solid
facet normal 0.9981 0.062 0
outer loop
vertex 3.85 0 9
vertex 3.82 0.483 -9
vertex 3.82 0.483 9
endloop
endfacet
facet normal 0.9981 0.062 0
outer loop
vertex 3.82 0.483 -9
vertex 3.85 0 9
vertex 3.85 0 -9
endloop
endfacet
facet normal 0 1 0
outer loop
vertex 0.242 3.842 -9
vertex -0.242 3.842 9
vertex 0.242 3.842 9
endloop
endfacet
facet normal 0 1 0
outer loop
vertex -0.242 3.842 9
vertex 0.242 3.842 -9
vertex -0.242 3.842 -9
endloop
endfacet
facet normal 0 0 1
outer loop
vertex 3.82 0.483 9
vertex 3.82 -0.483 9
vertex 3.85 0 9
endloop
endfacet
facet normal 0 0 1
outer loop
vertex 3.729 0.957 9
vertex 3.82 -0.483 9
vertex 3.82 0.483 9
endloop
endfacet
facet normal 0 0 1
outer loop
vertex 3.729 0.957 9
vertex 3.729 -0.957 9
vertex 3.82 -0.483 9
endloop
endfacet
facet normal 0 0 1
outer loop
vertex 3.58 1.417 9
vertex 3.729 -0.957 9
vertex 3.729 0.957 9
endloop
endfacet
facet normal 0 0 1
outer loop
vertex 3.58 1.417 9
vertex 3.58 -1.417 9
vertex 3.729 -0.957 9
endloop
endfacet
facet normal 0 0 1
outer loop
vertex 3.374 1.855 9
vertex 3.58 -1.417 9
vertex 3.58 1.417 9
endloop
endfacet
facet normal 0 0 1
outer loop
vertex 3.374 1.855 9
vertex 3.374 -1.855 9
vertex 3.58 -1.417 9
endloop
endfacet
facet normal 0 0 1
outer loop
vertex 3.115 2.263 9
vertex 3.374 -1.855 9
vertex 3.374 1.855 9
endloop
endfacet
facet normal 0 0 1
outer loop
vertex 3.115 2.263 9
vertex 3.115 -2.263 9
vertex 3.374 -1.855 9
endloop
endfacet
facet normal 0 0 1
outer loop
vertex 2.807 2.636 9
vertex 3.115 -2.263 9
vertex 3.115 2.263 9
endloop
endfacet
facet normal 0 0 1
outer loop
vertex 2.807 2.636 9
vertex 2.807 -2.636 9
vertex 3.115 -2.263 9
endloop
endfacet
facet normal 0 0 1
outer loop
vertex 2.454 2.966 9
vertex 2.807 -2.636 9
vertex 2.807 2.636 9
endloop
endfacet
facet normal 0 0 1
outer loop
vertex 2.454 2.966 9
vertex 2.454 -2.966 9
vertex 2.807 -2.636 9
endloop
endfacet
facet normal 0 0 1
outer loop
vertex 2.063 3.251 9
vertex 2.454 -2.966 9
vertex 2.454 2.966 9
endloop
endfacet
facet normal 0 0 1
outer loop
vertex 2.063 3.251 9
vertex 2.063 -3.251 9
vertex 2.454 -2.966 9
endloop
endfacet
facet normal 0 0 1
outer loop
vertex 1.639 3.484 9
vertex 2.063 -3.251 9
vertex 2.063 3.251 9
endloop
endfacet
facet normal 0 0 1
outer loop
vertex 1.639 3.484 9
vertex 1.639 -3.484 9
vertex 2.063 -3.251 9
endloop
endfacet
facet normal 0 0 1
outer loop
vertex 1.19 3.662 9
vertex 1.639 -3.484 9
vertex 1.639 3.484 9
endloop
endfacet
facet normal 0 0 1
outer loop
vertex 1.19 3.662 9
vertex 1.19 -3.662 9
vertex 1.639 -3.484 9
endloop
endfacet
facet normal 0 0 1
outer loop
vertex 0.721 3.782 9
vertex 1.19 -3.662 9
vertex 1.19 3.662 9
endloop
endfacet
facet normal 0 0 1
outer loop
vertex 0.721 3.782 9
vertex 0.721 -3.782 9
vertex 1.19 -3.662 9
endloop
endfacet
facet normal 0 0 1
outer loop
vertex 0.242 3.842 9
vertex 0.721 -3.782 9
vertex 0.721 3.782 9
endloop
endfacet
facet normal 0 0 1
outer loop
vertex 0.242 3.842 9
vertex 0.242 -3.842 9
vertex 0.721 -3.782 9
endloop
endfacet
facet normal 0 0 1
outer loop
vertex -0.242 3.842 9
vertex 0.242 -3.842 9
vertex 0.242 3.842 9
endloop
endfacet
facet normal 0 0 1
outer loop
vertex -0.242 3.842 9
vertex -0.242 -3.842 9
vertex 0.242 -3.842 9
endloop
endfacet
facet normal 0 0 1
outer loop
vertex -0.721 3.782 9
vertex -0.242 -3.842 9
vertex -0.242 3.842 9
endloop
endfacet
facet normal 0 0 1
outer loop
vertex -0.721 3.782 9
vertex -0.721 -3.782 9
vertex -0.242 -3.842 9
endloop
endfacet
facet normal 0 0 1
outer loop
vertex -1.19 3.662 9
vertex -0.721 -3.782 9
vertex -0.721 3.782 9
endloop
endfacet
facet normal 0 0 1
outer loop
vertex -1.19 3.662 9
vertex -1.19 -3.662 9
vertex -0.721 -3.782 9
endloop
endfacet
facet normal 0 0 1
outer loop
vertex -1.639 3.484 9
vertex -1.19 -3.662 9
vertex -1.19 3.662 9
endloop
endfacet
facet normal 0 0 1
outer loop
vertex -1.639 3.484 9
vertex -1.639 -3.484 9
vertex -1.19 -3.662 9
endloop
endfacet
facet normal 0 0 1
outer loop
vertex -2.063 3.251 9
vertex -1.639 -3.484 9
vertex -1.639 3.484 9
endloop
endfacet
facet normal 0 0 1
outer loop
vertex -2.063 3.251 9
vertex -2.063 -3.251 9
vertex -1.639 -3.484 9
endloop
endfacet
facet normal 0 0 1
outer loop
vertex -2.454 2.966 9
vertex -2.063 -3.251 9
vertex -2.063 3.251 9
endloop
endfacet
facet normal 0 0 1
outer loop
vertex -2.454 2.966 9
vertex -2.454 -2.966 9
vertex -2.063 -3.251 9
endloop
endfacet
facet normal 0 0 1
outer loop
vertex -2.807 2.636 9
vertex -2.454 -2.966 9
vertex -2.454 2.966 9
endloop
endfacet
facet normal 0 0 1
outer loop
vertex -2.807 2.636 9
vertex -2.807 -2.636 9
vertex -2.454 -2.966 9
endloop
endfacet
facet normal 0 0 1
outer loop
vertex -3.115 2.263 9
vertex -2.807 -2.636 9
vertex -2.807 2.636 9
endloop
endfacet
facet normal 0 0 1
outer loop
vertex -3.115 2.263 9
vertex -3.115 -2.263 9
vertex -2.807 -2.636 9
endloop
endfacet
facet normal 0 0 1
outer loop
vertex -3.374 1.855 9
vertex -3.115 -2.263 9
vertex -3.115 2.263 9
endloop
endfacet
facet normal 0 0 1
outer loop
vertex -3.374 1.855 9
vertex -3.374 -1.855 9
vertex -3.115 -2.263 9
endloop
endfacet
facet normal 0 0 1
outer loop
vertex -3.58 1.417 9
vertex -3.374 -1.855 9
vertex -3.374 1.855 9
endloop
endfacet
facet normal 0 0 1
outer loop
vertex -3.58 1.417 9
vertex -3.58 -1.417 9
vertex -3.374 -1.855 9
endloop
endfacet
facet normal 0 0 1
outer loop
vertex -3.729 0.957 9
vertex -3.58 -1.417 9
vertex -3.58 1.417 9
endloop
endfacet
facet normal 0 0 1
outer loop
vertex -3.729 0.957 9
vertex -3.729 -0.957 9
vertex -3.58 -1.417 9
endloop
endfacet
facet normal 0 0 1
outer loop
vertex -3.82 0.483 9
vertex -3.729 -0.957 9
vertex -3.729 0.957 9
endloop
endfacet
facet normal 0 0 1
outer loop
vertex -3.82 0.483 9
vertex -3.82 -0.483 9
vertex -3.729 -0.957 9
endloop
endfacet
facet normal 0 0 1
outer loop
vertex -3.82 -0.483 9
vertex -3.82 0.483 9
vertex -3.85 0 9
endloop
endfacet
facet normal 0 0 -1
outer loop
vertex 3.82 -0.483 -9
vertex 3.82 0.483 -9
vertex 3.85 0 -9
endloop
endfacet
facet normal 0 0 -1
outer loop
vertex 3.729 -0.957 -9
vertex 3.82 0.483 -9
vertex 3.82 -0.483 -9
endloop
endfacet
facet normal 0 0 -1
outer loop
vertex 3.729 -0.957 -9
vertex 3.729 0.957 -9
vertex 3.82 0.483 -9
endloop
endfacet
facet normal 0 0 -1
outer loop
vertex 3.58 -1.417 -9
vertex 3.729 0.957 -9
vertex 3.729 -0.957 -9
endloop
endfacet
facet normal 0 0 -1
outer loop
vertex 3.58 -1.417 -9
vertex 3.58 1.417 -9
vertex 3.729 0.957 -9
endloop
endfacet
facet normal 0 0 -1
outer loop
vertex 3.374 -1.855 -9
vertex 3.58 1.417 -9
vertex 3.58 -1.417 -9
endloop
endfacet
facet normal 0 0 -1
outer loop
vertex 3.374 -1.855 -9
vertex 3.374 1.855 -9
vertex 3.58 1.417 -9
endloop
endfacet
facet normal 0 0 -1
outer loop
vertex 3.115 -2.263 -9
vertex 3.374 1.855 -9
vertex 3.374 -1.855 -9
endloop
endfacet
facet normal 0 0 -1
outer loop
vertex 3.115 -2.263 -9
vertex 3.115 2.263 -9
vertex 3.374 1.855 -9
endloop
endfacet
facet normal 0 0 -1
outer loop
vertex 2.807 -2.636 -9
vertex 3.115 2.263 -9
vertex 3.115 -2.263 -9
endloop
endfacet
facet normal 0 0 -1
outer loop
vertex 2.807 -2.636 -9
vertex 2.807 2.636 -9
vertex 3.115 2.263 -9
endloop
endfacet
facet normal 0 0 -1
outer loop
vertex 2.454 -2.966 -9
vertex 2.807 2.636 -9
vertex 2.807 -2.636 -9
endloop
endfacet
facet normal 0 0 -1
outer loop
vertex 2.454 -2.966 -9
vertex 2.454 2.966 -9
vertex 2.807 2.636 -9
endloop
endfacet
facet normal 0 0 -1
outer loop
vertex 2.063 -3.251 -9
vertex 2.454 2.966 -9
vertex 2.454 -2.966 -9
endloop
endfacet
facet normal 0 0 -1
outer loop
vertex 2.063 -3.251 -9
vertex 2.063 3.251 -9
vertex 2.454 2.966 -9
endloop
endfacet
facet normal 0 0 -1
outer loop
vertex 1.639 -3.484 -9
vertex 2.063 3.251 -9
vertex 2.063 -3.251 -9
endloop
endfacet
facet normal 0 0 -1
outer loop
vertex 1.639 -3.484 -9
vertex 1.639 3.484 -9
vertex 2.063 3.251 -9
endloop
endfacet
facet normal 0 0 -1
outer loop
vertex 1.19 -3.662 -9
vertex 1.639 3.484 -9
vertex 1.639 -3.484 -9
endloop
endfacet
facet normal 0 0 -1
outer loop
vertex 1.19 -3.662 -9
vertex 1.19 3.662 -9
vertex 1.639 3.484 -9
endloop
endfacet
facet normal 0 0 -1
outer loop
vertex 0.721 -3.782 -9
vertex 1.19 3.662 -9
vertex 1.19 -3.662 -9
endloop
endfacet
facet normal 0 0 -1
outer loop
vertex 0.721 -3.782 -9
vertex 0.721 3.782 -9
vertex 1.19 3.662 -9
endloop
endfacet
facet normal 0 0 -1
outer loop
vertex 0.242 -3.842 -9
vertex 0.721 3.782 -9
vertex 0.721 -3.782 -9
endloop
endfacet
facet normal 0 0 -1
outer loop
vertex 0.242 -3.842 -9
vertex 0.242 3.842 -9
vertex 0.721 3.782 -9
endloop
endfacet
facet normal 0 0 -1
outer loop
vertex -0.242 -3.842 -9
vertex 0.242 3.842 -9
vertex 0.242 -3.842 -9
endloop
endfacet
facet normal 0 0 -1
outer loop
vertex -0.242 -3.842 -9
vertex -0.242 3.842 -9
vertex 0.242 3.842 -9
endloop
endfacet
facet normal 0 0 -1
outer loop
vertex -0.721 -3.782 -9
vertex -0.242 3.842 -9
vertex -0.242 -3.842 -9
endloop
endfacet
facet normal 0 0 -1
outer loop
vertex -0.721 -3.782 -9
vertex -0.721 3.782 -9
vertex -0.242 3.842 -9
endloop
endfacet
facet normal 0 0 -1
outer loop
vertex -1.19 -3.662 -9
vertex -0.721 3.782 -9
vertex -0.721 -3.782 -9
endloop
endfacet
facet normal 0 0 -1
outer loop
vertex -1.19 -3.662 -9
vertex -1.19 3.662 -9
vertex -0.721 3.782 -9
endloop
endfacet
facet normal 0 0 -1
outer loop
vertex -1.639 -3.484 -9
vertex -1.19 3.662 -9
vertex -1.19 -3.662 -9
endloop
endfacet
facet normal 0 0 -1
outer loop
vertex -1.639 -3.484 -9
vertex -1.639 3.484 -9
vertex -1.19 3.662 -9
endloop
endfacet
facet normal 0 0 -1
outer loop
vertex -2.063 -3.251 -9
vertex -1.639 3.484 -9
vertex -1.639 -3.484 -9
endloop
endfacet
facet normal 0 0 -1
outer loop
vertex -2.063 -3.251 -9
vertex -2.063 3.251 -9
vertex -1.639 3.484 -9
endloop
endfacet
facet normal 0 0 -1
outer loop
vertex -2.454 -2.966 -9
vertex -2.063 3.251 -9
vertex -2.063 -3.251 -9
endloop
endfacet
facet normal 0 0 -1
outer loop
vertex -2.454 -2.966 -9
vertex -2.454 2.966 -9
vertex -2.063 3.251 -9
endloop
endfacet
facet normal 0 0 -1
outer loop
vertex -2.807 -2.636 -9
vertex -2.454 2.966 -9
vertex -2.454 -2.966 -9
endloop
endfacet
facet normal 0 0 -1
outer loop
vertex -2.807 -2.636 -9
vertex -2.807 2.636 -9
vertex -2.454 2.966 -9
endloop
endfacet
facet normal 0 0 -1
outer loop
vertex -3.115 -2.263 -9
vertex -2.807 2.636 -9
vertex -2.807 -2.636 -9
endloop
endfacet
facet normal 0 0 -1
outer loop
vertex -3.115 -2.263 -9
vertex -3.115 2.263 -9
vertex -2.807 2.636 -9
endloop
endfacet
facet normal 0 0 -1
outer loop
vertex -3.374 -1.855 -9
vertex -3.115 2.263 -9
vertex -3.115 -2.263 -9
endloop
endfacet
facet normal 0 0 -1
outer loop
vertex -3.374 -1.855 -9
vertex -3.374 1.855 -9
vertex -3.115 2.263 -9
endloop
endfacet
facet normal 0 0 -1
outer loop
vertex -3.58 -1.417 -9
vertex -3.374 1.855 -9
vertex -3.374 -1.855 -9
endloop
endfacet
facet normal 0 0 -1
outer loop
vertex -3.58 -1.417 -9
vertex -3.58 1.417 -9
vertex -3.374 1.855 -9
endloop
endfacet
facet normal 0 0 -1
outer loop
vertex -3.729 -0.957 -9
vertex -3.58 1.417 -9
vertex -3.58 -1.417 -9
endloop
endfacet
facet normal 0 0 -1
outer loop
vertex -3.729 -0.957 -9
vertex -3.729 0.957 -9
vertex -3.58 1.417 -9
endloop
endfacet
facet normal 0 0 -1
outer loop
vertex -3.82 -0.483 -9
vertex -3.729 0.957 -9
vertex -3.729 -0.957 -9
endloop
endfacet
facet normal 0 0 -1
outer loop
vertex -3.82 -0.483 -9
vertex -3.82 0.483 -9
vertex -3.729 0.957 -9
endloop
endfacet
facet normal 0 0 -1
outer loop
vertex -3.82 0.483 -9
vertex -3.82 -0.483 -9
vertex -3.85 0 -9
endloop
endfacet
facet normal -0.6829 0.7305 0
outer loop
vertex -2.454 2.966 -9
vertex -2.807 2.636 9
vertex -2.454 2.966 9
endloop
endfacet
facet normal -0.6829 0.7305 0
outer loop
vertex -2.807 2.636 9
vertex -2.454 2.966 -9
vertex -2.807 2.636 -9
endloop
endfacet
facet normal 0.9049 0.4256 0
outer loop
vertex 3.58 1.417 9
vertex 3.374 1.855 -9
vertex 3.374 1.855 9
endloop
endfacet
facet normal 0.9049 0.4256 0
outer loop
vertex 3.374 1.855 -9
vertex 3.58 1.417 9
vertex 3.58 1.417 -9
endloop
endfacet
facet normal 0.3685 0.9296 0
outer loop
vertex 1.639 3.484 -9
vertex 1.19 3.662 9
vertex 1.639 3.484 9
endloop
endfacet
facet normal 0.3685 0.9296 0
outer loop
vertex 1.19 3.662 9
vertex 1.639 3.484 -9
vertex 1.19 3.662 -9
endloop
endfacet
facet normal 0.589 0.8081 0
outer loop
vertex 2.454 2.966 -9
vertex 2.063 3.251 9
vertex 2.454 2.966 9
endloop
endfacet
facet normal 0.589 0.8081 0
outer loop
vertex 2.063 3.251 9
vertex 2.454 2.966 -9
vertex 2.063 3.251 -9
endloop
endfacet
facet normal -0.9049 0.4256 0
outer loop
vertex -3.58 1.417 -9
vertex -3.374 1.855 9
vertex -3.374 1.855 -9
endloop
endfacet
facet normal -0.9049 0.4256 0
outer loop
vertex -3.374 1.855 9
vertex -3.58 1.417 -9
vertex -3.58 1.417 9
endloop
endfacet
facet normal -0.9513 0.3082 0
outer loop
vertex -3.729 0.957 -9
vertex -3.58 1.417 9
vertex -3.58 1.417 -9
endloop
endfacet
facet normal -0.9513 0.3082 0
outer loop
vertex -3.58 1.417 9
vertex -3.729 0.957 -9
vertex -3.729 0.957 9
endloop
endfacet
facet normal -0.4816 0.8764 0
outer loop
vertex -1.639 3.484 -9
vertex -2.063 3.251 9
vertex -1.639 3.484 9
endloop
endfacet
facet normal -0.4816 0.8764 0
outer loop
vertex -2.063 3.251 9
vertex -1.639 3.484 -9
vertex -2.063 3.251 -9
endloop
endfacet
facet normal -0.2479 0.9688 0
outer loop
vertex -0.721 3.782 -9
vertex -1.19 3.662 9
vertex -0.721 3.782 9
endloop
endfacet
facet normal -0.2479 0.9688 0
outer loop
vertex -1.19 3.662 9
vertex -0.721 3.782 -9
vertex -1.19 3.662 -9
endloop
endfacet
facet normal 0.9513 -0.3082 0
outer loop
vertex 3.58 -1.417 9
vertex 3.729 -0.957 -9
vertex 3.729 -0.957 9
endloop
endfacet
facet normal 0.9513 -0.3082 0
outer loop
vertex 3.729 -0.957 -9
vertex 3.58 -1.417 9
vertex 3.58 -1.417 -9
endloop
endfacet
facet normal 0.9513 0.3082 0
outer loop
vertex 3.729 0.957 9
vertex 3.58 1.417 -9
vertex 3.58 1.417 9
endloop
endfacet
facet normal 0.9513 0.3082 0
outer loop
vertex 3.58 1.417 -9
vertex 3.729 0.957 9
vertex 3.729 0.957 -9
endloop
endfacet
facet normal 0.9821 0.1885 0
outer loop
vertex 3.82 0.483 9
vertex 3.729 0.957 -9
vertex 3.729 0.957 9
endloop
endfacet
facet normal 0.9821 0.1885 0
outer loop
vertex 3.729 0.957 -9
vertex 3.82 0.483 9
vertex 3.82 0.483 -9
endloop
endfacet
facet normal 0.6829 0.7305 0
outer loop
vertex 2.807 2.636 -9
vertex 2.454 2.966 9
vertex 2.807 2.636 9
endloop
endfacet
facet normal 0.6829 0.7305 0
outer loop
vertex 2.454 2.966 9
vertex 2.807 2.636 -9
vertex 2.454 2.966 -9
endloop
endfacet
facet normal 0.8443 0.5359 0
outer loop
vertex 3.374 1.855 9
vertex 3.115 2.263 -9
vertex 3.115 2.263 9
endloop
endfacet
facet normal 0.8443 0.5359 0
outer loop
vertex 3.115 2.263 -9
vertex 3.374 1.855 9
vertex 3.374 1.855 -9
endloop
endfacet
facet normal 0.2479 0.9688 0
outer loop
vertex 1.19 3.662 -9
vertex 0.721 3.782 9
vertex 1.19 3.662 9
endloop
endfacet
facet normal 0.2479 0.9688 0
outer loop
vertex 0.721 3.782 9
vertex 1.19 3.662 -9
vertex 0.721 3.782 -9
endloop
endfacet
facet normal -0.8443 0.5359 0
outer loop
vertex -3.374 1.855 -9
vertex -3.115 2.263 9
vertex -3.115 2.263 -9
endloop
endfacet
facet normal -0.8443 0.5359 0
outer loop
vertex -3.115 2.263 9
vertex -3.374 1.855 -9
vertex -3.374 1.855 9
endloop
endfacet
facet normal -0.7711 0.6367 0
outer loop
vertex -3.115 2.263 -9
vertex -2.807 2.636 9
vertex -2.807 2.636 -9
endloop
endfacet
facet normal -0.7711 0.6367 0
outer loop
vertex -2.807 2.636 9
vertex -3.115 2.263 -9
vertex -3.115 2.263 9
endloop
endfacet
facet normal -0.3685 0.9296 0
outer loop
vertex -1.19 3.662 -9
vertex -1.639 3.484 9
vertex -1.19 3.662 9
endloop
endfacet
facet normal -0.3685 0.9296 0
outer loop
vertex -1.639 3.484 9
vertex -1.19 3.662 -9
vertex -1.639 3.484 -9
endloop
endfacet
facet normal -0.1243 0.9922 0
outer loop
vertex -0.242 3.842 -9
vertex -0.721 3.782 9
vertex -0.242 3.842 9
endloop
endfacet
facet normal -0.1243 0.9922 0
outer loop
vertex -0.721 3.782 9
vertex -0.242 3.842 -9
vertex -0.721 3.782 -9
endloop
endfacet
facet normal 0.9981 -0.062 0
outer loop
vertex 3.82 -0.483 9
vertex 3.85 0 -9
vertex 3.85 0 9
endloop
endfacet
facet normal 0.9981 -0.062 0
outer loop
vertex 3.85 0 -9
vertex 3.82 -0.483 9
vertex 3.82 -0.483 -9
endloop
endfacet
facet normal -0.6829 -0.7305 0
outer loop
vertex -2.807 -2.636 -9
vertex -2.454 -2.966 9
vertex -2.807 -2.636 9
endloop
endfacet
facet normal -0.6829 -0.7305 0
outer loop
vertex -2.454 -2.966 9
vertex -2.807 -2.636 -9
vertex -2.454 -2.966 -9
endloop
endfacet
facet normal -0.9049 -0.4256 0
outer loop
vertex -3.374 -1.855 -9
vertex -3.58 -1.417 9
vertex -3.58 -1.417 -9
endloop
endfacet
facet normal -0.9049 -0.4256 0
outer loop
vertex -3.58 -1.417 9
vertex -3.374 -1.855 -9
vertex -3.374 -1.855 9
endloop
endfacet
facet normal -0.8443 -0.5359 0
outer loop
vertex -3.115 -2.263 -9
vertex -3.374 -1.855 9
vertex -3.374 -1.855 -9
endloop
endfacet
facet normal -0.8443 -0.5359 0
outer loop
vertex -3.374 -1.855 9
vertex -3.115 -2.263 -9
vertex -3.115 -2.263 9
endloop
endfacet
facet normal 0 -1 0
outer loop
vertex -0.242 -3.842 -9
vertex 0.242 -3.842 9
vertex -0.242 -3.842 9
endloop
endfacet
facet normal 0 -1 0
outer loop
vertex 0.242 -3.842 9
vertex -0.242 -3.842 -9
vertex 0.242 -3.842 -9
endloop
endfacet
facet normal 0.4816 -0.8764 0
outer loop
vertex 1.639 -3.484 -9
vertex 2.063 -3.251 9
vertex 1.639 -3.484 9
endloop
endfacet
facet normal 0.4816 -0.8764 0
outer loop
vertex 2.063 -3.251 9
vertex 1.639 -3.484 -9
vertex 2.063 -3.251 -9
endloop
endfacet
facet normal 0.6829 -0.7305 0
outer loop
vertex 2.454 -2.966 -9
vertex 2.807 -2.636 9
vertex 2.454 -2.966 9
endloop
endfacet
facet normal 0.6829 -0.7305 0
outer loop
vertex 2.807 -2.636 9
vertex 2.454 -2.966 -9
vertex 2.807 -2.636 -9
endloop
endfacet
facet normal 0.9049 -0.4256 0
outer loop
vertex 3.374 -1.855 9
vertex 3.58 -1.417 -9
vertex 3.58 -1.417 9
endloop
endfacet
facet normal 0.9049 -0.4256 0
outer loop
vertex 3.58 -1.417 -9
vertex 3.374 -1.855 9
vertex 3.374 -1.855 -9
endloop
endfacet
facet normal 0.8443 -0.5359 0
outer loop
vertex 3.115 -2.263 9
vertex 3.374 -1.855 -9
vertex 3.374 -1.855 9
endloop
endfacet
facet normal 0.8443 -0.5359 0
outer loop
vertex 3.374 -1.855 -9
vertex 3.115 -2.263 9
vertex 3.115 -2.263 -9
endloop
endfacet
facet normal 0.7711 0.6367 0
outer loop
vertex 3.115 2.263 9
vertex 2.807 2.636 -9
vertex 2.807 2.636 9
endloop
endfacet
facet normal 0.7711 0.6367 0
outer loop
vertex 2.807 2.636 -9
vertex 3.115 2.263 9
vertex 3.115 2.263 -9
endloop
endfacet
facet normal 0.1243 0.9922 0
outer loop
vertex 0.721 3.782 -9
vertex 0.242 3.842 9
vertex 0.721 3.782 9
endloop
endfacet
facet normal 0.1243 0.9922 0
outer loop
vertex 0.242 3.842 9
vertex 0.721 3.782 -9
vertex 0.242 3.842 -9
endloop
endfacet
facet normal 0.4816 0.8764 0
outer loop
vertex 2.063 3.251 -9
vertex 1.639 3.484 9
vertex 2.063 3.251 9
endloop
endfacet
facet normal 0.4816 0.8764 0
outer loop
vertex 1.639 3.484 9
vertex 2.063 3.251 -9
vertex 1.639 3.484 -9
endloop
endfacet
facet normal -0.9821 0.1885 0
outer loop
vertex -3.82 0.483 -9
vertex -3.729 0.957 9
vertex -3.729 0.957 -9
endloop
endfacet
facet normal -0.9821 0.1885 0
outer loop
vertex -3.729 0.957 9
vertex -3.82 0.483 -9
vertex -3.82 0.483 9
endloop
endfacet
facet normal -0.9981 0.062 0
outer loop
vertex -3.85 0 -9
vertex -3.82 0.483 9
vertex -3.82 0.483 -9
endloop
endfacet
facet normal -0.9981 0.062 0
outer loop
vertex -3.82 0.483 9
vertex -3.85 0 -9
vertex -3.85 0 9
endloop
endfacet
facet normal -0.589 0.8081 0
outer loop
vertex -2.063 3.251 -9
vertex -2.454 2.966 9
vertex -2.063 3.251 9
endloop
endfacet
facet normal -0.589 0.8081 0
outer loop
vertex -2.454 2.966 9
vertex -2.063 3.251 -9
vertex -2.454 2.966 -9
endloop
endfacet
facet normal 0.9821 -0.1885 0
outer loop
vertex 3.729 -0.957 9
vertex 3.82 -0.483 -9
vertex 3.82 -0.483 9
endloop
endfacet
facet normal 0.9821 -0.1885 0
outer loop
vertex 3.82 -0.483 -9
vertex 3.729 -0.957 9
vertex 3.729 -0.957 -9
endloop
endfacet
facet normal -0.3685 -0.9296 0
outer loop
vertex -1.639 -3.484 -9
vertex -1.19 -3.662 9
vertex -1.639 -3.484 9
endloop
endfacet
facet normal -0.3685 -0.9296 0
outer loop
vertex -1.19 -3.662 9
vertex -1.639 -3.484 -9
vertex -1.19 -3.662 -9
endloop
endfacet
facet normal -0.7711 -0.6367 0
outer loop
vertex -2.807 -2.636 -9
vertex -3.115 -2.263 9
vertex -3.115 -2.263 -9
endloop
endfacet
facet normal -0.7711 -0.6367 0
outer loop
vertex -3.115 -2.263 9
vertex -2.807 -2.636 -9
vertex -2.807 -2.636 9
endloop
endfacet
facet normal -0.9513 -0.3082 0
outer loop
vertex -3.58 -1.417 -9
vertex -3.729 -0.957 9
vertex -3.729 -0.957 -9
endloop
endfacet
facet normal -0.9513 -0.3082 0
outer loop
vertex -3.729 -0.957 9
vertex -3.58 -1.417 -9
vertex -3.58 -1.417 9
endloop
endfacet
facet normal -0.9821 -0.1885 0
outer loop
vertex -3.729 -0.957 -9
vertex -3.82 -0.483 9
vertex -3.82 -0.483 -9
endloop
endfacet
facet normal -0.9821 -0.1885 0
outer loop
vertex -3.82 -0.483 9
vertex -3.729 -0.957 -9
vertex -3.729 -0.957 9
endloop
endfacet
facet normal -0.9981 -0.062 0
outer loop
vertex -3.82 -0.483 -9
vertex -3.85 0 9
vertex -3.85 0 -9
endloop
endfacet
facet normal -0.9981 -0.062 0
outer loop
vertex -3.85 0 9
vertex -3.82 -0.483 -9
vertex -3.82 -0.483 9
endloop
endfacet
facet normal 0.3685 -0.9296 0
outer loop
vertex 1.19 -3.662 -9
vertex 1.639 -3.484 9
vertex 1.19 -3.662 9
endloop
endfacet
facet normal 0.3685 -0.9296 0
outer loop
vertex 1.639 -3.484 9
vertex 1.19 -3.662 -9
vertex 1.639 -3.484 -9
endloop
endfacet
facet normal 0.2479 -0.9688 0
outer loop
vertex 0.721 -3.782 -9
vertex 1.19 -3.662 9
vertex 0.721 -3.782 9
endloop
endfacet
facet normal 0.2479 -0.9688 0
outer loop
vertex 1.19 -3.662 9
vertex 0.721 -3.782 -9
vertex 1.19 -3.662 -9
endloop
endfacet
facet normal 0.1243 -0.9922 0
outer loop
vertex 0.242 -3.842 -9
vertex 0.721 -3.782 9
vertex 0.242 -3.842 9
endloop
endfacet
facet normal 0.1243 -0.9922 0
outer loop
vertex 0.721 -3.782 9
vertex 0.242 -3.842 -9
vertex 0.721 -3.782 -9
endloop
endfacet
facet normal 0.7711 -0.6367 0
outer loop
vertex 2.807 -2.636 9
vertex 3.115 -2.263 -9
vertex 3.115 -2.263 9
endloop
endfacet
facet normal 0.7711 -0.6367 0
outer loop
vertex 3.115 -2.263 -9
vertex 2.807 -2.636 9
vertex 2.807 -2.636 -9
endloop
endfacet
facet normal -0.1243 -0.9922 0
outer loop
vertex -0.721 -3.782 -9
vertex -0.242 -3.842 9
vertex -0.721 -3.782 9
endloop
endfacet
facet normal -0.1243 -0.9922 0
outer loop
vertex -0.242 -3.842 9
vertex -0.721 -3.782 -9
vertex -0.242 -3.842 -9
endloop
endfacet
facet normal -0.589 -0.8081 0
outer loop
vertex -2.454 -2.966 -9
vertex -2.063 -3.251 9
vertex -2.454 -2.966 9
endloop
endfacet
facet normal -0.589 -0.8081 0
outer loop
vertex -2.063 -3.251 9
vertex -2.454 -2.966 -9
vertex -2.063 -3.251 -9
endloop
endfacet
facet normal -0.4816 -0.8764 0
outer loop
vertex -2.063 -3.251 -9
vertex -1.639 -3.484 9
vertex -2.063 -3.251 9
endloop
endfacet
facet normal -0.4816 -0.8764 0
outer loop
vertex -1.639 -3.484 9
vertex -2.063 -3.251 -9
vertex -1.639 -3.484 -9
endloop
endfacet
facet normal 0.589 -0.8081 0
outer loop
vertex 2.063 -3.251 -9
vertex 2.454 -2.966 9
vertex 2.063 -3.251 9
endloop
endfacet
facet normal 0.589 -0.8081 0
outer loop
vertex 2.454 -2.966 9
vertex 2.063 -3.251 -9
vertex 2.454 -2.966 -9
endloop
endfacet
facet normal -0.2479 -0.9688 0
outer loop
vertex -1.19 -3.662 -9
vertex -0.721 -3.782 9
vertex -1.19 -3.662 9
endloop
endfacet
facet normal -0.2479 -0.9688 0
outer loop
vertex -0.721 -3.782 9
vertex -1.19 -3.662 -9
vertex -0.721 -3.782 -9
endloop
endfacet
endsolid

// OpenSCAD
$fn = 50;


difference() {
	union() {
		translate(v = [0, 0, -9.0000000000]) {
			cylinder(h = 18, r = 3.8500000000);
		}
	}
	union() {
		translate(v = [0, 0, -100.0000000000]) {
			cylinder(h = 200, r = 0);
		}
	}
}
